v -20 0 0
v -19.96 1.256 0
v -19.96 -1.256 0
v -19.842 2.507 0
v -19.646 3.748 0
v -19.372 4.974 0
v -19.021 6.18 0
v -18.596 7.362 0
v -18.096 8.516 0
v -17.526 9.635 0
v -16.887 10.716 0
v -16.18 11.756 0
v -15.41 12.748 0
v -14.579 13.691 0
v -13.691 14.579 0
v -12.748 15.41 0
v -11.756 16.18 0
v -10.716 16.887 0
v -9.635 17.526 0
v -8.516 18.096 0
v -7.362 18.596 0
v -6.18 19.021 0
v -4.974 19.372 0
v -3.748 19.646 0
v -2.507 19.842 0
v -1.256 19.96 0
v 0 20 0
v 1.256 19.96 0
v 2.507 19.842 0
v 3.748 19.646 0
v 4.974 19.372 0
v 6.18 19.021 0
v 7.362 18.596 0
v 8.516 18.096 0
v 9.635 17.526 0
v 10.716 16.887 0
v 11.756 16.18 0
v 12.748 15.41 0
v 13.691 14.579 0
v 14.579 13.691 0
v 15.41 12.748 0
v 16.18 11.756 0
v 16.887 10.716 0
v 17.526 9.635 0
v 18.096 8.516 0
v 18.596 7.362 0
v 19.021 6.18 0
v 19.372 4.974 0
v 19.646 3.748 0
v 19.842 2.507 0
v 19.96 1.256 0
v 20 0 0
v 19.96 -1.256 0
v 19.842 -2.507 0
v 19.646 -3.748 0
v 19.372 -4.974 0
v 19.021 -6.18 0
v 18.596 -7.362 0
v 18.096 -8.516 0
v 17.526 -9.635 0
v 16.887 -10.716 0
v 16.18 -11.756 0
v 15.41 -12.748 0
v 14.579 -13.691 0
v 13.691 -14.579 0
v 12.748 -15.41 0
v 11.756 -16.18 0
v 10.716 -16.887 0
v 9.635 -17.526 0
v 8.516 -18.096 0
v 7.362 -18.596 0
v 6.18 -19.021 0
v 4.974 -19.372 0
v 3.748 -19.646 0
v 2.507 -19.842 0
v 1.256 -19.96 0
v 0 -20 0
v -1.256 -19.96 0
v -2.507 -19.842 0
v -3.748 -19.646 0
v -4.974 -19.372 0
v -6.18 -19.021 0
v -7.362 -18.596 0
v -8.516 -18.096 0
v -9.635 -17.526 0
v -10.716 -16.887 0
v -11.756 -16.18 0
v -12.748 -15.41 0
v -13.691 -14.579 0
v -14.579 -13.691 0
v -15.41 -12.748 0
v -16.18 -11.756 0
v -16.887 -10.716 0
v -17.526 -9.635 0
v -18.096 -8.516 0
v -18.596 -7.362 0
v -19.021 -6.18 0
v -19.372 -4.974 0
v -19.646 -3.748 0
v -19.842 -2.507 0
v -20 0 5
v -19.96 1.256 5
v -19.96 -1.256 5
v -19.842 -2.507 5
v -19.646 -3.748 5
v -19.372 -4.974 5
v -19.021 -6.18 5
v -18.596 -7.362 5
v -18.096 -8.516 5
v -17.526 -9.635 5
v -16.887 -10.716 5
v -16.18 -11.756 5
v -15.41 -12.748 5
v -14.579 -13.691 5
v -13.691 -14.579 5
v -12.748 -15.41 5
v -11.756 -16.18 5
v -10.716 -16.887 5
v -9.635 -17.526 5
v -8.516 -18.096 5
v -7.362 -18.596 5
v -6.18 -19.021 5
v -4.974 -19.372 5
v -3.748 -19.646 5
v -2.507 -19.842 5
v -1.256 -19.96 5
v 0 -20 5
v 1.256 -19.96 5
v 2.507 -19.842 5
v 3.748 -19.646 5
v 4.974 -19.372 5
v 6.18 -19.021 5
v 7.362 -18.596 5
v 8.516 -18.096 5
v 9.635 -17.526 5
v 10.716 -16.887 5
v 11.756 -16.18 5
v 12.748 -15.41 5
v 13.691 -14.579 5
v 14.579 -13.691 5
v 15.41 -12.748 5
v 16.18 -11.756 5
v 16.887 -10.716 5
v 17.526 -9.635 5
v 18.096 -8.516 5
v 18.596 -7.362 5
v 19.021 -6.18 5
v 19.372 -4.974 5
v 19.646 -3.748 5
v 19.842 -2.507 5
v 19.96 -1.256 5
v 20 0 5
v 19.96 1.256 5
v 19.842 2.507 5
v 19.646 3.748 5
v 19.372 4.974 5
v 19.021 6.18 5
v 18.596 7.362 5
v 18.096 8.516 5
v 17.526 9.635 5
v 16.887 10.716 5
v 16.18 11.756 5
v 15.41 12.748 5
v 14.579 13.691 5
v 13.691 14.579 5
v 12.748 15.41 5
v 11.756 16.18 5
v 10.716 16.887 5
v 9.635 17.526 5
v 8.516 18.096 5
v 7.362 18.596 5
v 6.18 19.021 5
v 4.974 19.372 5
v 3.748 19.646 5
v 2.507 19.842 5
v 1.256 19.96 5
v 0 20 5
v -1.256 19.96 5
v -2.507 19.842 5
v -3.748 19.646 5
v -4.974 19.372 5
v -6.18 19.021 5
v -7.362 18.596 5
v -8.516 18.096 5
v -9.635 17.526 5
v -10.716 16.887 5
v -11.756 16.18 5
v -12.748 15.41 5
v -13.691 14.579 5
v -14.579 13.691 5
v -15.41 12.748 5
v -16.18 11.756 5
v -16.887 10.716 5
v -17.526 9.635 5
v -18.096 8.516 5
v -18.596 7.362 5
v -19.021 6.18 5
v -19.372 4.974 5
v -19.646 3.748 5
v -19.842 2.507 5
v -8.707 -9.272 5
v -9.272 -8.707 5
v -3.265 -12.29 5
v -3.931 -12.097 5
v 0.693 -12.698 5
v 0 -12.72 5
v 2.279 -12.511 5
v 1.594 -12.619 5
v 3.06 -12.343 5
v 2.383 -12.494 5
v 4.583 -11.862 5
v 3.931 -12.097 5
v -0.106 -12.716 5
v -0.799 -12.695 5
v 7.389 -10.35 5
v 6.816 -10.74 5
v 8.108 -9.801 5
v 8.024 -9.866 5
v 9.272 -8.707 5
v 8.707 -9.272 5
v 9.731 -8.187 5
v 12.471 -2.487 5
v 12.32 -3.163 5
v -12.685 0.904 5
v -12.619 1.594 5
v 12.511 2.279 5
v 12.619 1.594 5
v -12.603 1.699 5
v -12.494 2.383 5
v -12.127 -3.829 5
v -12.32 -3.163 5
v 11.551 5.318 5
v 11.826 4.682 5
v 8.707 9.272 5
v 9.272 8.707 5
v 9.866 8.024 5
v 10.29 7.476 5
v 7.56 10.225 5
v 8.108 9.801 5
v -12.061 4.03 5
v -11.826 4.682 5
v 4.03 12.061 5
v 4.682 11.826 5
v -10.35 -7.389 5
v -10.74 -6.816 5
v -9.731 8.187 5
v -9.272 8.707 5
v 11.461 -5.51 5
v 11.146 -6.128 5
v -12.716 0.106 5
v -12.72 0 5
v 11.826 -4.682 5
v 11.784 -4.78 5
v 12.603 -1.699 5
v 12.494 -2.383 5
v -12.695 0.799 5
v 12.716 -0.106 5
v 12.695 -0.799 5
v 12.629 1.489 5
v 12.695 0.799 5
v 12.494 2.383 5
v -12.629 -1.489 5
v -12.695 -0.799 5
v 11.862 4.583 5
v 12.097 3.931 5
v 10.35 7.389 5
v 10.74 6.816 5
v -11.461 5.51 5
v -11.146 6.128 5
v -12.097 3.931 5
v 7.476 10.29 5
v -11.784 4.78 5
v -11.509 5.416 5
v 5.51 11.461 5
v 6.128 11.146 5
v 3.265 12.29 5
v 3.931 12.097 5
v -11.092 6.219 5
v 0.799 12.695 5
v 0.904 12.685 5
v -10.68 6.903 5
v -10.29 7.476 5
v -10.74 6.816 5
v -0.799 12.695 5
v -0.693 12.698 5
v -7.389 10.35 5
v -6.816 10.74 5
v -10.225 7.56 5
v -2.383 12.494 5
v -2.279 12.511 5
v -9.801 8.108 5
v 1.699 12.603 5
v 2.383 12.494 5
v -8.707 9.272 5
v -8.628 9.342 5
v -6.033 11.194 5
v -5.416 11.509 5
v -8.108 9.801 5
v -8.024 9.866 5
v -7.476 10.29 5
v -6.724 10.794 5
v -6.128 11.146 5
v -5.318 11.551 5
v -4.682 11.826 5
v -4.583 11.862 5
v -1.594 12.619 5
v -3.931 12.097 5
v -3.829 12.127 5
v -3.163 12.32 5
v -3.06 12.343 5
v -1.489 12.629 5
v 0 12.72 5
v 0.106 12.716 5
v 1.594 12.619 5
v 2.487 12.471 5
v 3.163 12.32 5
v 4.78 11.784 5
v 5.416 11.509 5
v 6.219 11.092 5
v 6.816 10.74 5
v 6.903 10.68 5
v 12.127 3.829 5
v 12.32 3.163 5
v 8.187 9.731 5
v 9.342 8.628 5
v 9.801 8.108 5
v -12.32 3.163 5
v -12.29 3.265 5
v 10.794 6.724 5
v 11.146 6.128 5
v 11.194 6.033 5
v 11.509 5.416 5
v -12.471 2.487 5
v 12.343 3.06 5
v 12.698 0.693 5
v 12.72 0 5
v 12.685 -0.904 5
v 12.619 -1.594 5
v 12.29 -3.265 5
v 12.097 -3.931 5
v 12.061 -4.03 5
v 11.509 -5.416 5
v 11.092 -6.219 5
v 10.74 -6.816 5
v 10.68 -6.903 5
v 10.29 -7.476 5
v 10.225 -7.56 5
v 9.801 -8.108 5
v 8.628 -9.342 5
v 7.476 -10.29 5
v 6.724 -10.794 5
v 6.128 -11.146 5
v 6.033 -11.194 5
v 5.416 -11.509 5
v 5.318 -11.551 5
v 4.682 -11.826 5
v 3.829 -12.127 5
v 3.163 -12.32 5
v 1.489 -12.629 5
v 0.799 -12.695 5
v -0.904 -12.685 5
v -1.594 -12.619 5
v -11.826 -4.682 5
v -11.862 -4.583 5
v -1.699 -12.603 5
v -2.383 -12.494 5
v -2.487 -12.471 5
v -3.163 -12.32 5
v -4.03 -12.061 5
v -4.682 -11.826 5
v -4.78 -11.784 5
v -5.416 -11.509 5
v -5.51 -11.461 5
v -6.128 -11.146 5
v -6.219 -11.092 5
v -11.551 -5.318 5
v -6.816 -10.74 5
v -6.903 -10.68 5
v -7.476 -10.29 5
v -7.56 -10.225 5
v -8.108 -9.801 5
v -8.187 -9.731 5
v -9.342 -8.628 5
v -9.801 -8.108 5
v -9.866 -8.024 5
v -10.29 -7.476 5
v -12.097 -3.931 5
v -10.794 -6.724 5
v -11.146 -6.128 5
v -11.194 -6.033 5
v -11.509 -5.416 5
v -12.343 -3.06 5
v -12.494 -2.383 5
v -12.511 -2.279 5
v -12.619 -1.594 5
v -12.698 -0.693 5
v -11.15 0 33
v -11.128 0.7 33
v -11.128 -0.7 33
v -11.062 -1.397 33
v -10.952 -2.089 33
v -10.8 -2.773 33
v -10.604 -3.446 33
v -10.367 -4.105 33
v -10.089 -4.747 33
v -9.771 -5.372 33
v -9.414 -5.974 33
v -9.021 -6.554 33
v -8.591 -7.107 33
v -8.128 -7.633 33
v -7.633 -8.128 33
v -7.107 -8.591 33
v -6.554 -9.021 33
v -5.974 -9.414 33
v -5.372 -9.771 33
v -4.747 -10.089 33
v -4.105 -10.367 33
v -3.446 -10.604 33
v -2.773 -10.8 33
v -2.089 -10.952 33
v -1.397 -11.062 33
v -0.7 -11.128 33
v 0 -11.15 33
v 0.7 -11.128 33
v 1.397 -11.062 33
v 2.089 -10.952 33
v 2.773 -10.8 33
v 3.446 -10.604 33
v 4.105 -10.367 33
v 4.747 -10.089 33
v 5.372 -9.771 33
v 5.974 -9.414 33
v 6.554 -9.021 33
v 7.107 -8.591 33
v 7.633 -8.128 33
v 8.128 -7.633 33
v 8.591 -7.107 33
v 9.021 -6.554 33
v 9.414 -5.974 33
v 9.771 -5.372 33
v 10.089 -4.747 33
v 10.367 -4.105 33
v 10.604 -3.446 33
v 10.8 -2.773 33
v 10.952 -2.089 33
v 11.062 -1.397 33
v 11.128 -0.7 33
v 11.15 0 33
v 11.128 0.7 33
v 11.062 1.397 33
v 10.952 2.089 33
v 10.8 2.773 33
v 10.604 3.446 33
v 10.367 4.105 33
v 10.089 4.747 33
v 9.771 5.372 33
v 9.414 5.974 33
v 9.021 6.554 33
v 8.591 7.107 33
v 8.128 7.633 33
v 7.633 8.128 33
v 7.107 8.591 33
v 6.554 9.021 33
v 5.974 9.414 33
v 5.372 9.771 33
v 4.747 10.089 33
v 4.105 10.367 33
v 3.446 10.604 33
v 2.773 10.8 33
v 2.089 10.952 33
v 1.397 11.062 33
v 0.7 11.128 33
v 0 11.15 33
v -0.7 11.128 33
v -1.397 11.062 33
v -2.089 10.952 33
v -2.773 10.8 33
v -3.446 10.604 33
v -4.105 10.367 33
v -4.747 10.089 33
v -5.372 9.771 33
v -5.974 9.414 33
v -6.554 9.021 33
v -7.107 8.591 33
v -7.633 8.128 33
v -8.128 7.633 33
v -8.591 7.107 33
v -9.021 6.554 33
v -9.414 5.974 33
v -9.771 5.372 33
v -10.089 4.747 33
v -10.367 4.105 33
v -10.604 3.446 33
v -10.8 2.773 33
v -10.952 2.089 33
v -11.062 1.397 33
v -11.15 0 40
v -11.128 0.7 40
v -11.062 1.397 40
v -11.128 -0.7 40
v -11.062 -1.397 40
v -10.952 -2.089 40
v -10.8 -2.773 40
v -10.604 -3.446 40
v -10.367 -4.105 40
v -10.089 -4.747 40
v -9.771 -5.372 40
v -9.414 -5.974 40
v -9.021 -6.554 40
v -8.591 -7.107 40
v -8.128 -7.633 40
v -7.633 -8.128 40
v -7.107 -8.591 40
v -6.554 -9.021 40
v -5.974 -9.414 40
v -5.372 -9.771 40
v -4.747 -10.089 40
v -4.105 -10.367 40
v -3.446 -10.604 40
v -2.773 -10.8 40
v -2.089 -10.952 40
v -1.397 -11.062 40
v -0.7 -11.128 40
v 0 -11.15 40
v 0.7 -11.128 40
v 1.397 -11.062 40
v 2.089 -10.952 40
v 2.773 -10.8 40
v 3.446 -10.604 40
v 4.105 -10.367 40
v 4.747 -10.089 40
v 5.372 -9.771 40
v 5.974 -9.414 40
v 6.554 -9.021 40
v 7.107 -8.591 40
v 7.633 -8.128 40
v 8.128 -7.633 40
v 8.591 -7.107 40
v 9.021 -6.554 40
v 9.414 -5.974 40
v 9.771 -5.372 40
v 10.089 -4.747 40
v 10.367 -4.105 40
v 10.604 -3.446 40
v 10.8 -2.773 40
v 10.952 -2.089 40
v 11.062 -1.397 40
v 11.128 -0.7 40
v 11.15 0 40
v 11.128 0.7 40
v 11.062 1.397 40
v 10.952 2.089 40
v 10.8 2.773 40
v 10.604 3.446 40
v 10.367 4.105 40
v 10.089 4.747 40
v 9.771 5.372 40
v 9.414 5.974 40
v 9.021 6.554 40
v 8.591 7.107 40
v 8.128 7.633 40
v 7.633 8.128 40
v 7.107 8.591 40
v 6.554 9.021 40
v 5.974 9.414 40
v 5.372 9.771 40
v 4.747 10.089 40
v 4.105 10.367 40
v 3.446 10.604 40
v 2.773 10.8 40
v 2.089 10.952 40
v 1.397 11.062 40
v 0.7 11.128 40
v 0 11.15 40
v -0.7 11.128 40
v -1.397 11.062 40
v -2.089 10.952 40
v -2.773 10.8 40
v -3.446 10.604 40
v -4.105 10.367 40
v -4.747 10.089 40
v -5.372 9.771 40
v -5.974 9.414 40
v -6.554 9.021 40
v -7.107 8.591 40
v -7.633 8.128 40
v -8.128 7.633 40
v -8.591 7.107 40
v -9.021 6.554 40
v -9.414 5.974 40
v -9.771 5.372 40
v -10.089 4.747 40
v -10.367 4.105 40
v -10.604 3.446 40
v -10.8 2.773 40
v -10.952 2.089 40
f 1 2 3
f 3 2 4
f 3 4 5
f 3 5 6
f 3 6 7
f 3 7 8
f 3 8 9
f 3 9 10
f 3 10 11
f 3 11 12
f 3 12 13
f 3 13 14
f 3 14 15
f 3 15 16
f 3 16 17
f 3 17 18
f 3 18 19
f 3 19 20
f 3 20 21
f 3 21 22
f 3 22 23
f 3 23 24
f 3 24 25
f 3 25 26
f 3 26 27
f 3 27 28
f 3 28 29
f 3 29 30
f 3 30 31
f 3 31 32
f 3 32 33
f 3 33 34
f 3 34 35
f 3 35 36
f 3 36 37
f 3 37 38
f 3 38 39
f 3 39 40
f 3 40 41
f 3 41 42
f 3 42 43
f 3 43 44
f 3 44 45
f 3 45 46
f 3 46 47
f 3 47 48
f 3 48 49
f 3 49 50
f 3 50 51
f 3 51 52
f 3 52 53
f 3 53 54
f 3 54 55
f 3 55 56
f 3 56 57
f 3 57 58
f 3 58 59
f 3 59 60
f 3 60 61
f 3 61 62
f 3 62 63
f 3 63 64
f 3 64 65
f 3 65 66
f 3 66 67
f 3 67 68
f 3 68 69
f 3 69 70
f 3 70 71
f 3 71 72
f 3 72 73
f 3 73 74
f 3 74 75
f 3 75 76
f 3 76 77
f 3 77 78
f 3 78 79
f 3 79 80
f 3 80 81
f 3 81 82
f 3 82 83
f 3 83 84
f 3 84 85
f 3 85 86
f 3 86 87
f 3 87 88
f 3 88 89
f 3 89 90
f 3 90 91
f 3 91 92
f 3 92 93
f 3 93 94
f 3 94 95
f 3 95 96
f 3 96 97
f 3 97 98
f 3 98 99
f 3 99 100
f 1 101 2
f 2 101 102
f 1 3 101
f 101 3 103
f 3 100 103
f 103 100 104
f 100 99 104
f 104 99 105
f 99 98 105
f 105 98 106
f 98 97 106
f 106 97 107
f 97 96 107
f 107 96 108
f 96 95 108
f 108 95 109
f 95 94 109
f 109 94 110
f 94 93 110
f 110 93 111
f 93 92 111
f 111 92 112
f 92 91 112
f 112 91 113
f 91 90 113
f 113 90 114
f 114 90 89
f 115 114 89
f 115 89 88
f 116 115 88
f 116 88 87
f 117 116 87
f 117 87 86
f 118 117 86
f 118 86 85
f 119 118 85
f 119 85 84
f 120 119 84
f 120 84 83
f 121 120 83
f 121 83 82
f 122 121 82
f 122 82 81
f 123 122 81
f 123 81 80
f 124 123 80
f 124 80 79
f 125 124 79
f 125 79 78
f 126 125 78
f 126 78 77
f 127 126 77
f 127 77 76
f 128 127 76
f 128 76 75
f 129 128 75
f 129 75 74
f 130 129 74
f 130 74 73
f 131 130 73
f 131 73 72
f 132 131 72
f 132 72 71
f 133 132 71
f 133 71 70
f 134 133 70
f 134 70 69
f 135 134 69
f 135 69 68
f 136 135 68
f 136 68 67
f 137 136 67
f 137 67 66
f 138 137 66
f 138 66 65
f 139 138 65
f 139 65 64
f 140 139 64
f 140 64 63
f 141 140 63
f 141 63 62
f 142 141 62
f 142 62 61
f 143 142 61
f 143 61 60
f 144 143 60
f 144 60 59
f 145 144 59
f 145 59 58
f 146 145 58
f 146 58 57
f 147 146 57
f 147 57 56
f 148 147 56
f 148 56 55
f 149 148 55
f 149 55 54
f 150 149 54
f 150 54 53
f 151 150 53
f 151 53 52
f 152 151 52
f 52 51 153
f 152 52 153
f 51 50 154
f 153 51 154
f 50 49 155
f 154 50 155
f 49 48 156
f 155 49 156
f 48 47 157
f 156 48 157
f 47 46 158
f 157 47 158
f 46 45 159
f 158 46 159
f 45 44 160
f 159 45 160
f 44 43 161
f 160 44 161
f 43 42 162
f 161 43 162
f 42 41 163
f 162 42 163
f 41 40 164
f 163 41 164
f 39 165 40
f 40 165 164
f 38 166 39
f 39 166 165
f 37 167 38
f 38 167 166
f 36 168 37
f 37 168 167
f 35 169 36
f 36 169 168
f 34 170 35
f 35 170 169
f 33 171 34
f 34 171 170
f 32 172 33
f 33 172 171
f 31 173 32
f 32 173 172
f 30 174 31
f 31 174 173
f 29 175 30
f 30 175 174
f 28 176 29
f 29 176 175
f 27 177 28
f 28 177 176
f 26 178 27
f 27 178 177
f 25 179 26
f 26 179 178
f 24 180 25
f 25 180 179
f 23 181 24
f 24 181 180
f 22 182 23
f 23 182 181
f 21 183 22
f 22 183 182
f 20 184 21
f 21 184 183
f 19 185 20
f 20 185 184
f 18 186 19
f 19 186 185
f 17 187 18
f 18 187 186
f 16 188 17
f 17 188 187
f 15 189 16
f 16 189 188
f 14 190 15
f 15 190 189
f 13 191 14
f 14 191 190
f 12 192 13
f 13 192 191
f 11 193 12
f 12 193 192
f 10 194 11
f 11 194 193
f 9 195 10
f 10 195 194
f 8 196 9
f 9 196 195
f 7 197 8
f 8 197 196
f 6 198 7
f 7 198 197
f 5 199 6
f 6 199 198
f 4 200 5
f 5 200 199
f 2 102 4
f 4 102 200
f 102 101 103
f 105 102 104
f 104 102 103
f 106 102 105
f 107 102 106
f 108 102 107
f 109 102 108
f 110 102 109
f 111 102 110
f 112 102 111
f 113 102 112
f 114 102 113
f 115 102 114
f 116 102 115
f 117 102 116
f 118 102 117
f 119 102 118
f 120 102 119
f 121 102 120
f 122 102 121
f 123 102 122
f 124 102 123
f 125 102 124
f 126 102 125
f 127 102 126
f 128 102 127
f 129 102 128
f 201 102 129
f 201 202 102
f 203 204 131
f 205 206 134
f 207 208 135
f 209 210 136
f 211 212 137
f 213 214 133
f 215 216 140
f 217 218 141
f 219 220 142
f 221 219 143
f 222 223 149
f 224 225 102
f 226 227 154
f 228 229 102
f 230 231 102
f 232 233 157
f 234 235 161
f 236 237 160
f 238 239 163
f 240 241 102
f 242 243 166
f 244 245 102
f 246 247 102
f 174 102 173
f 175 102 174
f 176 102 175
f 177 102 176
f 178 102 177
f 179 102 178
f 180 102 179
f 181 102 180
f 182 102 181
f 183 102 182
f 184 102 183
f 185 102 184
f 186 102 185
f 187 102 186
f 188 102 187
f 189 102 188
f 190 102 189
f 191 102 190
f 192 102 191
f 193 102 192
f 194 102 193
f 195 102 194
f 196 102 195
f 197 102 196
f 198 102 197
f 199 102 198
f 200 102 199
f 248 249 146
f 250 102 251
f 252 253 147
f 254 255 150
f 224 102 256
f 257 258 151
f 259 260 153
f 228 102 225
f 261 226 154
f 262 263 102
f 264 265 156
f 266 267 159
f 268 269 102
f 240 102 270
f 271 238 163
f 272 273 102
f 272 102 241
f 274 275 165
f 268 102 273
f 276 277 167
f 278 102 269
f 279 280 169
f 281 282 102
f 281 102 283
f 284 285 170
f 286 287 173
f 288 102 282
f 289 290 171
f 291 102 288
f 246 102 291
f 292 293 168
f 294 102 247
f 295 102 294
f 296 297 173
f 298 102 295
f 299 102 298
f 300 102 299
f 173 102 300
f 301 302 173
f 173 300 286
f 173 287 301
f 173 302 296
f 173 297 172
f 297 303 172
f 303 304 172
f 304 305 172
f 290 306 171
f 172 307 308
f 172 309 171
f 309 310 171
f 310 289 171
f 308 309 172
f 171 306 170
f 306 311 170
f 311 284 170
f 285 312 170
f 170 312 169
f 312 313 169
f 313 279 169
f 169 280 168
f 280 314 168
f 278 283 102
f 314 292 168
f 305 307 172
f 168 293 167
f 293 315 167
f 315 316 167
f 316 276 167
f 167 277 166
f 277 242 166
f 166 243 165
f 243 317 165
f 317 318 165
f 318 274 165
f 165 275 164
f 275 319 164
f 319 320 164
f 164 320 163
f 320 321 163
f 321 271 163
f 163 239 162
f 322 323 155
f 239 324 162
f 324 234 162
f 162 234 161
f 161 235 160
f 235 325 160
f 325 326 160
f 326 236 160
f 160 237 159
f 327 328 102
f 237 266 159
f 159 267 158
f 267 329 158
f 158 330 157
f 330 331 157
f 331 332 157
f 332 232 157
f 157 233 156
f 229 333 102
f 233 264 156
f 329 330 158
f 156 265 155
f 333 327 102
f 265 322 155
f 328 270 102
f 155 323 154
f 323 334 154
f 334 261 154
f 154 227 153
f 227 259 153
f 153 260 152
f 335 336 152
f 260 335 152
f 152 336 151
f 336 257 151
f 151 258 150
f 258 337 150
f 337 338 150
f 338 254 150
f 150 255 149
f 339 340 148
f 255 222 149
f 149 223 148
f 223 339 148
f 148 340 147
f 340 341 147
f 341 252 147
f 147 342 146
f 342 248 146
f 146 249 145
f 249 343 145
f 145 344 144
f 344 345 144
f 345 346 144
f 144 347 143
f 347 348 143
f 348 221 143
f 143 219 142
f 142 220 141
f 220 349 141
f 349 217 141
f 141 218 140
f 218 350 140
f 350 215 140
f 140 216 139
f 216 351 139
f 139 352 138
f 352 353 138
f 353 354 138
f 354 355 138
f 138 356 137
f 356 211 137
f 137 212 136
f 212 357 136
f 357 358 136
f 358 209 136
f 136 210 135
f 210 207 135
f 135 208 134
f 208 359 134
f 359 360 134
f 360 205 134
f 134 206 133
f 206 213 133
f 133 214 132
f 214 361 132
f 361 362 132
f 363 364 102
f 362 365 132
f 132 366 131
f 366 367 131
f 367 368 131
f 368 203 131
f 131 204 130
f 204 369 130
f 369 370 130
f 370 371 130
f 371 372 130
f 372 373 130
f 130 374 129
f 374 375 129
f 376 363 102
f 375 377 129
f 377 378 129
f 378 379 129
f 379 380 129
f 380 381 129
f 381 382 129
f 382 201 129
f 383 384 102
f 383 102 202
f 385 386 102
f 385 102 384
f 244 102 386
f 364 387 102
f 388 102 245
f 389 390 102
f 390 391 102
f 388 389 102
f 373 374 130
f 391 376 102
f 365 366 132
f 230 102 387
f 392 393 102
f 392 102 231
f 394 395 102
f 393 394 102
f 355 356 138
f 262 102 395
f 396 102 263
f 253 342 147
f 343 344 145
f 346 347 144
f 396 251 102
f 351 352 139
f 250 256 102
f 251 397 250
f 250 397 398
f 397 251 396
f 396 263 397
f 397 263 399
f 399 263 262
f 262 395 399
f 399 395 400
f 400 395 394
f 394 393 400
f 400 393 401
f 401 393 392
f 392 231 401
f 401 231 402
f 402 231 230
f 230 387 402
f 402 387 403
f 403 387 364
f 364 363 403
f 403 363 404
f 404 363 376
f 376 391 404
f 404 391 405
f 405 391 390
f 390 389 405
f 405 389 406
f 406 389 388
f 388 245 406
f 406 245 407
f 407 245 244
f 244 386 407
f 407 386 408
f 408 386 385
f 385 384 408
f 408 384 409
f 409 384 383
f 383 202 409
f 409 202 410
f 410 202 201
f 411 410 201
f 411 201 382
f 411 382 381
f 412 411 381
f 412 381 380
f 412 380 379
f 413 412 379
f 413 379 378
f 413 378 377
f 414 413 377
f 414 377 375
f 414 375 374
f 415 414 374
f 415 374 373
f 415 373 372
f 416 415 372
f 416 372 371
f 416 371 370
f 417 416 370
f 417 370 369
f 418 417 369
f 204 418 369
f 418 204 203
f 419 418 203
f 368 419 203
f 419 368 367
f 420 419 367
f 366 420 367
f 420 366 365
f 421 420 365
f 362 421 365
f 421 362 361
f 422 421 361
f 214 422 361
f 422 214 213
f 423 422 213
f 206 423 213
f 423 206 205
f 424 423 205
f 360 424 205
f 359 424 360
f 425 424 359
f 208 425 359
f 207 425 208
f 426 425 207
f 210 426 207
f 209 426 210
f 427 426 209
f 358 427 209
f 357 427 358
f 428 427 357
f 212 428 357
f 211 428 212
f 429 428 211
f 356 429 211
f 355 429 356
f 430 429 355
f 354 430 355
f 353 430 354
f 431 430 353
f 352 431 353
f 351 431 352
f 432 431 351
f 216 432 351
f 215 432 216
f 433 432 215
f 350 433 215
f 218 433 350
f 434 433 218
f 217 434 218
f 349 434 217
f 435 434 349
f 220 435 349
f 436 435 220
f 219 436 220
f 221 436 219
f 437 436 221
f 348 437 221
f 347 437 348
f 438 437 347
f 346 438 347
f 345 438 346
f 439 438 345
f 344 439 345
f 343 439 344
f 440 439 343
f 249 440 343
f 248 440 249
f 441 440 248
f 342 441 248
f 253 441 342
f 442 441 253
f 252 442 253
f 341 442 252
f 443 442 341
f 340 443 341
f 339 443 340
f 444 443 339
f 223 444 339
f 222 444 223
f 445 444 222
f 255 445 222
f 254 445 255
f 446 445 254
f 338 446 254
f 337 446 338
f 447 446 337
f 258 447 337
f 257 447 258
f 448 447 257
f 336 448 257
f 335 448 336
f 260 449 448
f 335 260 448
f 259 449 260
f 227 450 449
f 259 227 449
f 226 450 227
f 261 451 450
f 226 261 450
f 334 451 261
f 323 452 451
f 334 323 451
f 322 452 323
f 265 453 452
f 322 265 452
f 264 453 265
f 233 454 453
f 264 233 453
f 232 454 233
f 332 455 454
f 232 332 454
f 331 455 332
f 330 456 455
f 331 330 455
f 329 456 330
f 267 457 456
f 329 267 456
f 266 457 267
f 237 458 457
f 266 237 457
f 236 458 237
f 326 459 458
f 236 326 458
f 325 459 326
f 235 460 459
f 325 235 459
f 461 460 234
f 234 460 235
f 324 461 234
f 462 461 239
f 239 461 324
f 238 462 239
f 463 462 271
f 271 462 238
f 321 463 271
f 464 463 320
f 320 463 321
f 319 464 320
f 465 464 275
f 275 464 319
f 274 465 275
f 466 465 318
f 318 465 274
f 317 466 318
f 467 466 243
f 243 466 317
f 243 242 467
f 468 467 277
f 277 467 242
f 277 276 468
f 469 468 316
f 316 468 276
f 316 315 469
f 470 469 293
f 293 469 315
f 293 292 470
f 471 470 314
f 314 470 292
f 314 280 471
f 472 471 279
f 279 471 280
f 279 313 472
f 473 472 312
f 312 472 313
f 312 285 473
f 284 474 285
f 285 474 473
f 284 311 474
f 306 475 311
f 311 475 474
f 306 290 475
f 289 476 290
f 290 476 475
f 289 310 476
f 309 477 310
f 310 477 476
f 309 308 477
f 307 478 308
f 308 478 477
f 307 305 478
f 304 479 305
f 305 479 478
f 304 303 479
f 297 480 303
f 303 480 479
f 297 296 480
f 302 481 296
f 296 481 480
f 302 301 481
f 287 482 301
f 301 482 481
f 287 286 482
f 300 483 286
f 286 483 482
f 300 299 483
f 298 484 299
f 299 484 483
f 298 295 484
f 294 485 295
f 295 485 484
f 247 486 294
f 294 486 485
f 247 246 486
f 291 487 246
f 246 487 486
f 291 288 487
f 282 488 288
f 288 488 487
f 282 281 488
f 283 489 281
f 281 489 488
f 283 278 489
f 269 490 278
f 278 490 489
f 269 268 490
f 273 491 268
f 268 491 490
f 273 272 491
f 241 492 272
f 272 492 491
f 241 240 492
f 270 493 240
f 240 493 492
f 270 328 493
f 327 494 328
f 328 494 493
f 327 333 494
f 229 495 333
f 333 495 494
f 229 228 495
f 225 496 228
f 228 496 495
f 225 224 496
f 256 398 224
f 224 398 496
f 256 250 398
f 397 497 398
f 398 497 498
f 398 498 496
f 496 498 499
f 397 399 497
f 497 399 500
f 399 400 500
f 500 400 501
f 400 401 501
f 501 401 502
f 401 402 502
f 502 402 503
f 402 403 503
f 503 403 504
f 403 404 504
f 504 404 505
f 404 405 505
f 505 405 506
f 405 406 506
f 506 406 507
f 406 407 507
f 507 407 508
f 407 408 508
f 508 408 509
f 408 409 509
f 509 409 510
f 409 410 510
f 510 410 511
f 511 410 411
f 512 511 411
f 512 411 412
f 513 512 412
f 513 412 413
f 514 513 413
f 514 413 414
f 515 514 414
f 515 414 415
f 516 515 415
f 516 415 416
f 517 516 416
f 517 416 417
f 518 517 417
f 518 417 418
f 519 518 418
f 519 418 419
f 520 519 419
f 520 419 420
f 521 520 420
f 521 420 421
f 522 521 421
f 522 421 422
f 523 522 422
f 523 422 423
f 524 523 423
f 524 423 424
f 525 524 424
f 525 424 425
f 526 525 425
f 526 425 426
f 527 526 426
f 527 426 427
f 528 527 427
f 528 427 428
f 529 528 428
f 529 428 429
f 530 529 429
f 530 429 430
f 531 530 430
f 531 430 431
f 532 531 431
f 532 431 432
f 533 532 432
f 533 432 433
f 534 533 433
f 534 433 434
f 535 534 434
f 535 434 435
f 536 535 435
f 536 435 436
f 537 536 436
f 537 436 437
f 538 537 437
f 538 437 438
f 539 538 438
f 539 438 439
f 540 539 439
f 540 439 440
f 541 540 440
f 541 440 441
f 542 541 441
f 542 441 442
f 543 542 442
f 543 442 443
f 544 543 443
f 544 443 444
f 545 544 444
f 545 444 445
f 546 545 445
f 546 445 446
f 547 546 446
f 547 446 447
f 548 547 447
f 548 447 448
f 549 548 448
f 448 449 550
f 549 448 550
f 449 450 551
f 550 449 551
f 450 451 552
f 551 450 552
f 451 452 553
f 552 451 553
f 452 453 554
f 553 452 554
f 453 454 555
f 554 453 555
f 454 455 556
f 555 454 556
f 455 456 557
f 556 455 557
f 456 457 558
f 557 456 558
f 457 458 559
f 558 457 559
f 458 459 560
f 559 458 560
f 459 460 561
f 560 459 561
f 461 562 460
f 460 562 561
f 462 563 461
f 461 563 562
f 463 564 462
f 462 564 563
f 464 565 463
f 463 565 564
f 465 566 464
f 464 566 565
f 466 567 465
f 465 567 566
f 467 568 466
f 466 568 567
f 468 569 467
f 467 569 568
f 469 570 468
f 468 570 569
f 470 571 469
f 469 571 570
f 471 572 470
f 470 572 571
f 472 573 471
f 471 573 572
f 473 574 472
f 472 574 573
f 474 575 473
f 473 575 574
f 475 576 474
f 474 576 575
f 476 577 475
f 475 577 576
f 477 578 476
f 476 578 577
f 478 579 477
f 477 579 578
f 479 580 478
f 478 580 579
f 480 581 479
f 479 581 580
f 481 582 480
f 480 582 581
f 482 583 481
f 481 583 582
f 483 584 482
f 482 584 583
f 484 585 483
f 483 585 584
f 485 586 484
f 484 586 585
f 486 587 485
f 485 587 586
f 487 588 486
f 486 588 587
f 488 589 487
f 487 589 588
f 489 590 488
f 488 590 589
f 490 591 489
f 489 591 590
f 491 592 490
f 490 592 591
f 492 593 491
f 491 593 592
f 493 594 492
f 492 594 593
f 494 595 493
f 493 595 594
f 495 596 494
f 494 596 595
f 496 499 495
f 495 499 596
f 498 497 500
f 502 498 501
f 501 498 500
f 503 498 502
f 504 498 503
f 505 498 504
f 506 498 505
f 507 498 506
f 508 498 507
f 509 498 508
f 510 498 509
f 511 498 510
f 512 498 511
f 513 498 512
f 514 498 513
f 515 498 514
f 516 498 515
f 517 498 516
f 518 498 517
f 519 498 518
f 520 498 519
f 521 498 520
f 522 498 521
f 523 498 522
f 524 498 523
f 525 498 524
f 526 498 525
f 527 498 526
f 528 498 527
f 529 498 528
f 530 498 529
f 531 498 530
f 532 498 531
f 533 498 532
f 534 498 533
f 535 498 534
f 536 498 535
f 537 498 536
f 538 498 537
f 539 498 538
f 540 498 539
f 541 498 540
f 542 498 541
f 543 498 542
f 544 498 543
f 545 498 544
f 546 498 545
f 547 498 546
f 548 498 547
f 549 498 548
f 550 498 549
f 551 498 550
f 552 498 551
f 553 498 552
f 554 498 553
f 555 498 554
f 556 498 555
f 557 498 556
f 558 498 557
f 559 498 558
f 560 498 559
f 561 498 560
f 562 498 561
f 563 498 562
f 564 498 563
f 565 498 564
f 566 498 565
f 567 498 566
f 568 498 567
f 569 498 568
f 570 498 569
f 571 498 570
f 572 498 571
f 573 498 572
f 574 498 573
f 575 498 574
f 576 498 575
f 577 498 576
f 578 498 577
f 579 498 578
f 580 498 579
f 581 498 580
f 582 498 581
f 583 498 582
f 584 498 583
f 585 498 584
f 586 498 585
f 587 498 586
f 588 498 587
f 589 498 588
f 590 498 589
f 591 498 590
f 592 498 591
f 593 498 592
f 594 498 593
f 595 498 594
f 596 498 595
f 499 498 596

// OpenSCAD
color("blue")
cylinder(r=22.3/2,h=40,  $fn=100);
color("blue")
cylinder(r=40/2,h=5,  $fn=100);
color("blue")
cylinder(r1=26/2,r2=22.3/2, h=33,  $fn=100);
